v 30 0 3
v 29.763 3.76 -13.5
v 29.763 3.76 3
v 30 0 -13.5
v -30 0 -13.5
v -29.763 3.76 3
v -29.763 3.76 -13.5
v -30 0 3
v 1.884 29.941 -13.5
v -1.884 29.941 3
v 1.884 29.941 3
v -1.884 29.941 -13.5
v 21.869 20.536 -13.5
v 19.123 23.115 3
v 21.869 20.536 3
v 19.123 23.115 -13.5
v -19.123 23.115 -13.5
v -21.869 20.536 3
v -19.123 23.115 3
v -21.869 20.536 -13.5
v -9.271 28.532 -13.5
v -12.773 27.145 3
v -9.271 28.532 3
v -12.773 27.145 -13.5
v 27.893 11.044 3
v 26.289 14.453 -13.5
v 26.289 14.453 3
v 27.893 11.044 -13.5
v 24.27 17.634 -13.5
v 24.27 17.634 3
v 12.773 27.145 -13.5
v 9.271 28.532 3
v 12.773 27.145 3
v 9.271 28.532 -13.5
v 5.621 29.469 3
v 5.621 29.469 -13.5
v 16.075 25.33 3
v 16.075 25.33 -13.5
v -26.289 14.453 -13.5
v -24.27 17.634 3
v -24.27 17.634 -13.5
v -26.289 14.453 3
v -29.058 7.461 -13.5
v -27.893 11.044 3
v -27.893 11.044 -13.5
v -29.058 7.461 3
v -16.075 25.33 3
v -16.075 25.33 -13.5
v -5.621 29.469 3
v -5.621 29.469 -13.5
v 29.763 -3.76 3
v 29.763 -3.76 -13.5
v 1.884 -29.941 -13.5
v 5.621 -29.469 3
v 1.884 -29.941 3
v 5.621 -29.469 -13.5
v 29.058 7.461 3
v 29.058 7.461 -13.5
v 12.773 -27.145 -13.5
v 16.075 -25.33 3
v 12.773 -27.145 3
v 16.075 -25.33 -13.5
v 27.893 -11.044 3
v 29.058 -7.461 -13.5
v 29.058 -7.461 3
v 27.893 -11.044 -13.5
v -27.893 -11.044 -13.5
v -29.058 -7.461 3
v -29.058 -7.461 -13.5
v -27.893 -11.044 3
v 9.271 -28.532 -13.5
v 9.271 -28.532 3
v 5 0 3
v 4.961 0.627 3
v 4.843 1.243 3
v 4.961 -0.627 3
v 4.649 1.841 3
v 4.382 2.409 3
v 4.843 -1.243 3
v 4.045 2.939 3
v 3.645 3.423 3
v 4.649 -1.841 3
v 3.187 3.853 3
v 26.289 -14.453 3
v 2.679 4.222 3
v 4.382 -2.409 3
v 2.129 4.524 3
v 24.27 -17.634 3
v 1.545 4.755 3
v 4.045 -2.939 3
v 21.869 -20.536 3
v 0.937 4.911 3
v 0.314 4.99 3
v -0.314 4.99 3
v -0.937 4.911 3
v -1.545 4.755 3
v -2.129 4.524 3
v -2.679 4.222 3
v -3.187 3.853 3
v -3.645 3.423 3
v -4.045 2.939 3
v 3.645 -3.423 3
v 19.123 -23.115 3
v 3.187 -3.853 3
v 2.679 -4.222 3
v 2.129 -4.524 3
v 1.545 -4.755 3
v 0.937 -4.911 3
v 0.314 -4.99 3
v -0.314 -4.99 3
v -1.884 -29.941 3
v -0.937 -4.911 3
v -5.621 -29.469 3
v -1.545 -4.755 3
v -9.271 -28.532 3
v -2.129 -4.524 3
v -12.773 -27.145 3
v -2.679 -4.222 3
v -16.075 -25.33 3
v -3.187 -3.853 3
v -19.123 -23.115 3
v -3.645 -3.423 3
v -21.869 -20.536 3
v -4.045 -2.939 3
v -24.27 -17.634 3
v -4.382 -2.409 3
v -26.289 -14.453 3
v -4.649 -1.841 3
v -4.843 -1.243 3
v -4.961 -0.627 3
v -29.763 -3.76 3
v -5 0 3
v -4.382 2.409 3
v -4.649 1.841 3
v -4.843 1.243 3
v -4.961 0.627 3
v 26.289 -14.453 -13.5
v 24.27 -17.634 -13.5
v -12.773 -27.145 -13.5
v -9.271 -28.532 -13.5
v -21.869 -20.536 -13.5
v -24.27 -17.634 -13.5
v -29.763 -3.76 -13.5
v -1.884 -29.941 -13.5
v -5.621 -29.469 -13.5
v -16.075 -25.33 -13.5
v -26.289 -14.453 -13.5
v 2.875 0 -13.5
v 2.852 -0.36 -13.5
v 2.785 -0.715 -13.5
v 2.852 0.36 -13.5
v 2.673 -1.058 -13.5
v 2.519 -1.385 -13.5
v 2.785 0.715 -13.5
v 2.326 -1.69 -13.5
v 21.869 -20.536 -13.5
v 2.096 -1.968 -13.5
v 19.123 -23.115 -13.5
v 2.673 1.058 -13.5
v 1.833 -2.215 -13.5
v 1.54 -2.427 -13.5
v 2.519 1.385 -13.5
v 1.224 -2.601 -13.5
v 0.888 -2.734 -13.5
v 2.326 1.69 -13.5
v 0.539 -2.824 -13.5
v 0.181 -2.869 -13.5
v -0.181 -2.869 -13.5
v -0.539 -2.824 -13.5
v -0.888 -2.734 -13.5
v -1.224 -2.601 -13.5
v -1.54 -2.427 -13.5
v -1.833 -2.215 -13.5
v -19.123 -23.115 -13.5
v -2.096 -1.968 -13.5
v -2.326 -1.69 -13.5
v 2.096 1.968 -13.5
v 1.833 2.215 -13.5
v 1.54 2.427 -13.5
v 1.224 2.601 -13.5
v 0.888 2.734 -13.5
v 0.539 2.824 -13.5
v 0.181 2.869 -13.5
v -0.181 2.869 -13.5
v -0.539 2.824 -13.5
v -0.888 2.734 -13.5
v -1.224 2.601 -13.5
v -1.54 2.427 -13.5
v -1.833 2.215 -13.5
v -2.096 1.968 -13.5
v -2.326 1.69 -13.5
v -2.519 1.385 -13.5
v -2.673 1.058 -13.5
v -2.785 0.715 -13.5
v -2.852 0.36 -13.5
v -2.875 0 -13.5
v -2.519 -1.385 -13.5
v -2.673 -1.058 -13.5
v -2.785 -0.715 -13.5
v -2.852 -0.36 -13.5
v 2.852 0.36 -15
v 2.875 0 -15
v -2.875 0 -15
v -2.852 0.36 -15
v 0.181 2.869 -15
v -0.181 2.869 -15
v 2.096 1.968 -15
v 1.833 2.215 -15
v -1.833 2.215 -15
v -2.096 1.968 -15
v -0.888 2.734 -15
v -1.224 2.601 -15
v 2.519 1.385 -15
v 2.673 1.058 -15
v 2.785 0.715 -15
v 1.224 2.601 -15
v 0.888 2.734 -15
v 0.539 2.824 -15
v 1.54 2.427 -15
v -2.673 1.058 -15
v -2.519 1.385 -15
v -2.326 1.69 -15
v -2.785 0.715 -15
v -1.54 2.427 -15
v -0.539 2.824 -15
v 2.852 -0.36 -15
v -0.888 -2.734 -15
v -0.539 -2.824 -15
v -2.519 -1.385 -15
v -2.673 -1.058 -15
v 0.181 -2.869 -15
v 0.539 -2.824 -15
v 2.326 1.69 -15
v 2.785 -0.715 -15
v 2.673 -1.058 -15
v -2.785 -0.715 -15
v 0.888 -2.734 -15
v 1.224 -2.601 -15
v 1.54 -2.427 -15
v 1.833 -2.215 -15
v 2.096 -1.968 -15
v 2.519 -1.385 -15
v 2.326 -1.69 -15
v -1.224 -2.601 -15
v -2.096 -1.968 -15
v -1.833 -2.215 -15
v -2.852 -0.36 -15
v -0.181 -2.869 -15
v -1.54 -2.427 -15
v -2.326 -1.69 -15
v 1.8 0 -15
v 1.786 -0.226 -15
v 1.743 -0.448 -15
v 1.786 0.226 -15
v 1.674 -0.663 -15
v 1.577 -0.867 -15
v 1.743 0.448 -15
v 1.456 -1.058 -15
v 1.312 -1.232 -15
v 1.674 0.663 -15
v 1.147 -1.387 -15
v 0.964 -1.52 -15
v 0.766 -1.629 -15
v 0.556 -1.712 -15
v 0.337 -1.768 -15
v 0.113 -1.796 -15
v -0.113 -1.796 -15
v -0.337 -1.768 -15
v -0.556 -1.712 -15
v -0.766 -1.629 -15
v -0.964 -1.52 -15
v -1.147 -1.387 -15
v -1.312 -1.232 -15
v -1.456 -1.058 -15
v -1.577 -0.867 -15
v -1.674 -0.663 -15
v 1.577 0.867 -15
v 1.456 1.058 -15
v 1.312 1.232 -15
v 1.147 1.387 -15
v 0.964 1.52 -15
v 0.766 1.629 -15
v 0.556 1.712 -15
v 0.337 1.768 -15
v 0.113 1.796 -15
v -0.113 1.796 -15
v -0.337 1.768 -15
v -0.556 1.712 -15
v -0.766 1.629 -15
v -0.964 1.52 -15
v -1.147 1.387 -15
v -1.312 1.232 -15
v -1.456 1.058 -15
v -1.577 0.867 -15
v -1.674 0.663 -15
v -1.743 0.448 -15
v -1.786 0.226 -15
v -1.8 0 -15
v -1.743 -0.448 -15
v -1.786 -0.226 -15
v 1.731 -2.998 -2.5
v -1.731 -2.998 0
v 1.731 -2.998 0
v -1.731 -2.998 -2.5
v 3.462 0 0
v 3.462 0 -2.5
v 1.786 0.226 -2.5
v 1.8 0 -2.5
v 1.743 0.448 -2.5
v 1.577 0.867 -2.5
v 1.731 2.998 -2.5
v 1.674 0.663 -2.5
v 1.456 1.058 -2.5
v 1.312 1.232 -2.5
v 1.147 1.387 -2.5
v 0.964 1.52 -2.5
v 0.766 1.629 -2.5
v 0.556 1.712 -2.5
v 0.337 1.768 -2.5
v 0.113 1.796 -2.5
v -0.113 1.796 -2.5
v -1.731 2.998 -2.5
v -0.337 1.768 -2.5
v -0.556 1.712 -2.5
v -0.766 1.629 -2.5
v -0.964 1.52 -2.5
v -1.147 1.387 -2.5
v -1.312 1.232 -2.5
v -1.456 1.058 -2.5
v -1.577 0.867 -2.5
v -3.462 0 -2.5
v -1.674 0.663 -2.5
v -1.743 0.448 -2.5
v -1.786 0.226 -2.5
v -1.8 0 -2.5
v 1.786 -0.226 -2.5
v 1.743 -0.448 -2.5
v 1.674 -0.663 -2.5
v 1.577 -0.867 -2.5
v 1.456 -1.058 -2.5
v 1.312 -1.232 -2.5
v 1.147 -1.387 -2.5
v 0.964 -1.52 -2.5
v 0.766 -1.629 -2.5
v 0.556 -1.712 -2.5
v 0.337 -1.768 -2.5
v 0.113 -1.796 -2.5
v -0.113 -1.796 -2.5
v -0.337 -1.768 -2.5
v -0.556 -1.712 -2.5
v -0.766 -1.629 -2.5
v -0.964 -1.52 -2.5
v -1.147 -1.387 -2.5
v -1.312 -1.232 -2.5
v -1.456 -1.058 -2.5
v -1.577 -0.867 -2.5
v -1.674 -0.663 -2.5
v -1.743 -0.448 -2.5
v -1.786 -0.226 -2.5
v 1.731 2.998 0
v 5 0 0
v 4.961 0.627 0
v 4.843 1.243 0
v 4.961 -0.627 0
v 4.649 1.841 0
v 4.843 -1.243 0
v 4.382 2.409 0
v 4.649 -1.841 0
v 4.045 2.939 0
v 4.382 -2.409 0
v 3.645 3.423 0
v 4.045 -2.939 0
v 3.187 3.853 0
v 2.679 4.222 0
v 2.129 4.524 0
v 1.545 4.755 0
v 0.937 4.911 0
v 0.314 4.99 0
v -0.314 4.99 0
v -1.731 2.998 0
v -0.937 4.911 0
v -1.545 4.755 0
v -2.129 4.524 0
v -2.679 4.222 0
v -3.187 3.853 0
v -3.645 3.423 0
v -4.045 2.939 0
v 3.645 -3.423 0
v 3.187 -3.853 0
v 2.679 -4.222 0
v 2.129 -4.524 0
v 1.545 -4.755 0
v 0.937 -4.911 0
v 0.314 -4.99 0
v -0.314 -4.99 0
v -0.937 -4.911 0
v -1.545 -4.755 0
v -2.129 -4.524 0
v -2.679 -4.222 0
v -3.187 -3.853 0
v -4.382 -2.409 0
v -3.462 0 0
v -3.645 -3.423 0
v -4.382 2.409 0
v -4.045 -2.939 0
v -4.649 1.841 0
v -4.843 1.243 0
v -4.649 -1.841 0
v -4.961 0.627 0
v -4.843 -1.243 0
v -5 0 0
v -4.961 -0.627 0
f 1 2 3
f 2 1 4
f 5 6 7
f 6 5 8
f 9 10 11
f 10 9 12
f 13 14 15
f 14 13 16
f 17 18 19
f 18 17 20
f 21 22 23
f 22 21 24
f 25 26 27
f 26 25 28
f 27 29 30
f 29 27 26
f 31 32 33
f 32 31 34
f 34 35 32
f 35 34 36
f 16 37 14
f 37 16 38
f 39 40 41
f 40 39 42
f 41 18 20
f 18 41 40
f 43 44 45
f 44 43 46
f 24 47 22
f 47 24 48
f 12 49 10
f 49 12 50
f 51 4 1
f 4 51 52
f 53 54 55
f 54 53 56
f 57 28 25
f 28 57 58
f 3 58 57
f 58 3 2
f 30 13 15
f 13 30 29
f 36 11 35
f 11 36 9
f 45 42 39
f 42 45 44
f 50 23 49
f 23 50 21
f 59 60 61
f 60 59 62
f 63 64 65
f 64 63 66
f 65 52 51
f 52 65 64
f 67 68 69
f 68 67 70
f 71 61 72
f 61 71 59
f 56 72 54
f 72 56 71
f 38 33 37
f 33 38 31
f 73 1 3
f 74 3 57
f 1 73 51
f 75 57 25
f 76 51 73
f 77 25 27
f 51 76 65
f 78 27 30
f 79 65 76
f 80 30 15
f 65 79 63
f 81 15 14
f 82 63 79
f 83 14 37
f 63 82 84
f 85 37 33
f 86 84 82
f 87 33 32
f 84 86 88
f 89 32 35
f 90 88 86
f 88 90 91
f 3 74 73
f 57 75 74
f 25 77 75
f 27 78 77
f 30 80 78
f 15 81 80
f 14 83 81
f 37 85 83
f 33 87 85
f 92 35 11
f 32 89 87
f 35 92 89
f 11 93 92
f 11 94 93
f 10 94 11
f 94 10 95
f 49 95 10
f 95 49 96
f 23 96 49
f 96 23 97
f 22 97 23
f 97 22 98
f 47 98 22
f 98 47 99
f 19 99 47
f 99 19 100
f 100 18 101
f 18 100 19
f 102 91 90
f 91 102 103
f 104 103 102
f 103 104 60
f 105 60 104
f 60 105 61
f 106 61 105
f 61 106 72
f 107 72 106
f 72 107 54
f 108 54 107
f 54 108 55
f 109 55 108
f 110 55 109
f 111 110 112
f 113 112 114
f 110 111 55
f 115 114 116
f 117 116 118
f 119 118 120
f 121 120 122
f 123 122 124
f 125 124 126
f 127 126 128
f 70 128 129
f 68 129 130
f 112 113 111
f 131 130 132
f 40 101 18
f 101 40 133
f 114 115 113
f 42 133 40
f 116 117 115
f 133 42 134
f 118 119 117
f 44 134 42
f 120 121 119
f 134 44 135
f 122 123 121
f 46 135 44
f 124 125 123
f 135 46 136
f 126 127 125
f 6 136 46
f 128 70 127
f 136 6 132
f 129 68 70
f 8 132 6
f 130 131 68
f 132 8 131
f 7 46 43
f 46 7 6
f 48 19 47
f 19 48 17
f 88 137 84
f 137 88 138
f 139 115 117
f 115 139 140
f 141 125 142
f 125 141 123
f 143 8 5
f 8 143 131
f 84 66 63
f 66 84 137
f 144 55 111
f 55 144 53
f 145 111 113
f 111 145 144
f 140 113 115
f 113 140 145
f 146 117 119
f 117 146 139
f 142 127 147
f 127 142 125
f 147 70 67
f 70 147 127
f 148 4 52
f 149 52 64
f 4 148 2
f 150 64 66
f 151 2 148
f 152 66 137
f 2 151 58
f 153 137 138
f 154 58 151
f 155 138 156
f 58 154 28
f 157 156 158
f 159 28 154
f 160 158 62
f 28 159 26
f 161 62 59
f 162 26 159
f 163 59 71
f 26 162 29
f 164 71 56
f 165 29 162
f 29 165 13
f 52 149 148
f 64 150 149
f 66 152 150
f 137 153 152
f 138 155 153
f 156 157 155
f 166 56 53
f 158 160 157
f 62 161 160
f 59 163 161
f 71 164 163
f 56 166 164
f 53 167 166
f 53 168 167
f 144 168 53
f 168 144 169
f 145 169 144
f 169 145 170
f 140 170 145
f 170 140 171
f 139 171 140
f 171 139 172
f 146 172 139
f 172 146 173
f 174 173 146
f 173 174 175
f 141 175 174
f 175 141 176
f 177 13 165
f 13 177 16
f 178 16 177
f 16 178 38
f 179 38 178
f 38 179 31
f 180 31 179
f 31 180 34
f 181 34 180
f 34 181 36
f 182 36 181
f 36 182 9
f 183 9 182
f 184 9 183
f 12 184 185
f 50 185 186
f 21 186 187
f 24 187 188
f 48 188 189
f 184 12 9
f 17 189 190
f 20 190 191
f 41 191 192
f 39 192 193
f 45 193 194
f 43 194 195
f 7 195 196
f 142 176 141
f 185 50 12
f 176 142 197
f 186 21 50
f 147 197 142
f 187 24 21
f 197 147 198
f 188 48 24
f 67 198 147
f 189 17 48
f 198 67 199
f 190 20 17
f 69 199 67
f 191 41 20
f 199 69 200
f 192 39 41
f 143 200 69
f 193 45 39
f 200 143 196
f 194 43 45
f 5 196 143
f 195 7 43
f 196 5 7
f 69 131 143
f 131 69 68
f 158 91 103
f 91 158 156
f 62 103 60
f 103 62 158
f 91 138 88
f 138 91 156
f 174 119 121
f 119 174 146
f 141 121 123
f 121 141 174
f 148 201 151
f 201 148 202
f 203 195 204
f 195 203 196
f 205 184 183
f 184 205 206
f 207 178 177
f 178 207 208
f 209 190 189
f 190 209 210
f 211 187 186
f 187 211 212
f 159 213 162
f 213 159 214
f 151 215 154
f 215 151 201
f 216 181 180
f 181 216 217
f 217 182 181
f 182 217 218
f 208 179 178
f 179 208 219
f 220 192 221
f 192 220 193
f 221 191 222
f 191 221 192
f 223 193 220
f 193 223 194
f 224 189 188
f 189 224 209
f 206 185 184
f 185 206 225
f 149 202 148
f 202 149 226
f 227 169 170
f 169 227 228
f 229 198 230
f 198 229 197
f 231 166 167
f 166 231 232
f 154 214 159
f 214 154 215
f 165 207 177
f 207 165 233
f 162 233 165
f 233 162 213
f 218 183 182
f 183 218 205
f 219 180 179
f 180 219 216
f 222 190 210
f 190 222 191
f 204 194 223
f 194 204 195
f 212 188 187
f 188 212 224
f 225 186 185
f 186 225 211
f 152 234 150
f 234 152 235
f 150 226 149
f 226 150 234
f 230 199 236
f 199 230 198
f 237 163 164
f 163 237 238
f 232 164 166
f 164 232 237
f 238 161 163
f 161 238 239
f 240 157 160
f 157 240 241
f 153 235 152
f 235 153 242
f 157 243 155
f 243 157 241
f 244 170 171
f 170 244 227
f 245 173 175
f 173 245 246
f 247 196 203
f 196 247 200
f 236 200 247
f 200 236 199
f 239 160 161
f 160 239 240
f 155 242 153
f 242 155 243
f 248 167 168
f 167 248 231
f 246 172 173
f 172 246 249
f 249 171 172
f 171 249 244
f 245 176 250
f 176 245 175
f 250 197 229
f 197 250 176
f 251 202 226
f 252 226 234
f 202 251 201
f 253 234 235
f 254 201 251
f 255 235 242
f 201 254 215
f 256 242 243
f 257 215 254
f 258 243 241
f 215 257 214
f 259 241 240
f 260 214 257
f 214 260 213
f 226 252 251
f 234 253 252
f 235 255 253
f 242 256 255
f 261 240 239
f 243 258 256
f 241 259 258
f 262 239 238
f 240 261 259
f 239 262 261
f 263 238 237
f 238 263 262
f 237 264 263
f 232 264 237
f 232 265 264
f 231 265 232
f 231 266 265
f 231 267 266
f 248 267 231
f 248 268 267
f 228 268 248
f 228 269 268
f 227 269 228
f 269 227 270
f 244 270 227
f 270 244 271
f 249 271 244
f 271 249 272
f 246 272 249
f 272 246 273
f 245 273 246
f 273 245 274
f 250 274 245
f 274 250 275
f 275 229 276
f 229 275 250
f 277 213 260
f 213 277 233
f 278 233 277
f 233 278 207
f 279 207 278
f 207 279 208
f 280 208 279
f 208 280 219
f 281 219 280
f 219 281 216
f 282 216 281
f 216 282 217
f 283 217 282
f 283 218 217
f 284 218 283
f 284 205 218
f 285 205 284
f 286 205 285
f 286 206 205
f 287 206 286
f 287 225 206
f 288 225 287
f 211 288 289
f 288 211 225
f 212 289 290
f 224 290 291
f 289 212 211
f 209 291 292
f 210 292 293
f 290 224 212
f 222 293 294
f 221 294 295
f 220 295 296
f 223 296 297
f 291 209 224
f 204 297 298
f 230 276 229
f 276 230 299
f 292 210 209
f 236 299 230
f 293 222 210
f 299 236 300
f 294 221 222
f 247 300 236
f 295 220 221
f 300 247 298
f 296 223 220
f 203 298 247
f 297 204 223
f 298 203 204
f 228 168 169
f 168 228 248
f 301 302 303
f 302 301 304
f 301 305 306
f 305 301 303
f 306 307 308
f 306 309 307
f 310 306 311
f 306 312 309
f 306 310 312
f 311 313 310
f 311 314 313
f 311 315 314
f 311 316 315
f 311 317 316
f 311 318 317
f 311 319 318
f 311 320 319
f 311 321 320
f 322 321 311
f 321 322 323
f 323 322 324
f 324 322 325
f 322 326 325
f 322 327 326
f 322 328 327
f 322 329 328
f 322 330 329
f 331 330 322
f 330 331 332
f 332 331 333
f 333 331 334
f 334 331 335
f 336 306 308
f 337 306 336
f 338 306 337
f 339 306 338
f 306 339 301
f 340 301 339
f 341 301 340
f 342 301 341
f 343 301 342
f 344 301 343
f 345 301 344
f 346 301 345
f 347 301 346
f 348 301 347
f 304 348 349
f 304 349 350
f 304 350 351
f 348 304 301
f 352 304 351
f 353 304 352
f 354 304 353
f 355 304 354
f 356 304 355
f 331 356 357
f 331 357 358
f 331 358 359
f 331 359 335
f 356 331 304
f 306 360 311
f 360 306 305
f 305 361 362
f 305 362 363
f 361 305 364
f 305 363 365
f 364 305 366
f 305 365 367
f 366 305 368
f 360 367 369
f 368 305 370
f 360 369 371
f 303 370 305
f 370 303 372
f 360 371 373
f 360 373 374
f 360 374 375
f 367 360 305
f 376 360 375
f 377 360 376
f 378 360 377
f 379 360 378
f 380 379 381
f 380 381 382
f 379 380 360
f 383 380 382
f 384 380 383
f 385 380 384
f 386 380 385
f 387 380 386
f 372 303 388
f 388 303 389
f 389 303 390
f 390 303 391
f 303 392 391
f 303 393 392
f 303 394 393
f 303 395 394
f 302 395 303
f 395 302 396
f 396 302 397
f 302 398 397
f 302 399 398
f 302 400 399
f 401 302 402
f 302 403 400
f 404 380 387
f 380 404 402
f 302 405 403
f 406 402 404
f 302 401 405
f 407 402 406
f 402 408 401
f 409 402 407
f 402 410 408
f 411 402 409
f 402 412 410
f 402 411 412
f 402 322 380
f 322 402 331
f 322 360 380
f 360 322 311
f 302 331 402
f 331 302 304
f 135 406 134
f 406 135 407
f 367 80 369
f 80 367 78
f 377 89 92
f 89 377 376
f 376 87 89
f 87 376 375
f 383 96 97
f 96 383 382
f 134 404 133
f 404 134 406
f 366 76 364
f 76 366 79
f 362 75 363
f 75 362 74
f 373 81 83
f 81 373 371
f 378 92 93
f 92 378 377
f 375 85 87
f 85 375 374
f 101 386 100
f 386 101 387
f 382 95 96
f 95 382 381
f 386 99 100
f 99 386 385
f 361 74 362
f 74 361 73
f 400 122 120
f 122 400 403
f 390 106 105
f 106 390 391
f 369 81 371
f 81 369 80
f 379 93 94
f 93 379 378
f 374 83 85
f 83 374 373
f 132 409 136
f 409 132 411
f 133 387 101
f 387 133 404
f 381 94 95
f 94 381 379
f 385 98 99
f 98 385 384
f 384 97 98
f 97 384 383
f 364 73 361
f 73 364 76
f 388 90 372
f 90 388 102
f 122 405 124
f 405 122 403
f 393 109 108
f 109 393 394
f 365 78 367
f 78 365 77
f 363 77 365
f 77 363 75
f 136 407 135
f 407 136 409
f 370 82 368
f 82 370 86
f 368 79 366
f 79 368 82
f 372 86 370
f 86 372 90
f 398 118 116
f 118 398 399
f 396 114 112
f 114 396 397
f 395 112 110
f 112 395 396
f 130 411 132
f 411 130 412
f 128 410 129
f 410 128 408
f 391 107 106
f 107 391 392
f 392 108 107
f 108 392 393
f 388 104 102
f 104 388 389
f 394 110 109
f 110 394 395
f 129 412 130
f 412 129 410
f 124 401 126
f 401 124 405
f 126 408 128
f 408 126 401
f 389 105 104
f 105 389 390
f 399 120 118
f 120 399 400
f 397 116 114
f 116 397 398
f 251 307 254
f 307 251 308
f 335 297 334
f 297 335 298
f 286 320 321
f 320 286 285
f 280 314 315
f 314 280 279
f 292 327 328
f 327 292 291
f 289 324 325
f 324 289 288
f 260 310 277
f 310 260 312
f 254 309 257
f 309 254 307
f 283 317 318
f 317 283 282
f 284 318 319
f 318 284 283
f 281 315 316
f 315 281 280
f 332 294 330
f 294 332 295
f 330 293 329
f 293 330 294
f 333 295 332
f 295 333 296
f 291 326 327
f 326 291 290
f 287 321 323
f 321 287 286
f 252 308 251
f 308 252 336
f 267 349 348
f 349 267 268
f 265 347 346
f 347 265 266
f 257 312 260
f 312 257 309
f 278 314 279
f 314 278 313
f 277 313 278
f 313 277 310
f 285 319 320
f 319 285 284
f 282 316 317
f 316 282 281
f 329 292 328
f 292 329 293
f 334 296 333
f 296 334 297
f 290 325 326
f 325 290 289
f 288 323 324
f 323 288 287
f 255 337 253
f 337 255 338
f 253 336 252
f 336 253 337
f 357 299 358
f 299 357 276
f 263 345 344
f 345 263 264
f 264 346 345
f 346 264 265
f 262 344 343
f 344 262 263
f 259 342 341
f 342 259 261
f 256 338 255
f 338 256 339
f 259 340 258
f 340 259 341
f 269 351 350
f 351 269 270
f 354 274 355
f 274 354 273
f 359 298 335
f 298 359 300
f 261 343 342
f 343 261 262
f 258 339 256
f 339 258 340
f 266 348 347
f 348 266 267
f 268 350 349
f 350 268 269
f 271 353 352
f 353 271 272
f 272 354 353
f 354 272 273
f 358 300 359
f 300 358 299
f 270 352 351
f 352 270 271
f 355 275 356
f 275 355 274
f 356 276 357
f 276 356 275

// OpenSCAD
$fn = 50;


difference() {
	union() {
		translate(v = [0, 0, -13.5000000000]) {
			cylinder(h = 16.5000000000, r = 30.0000000000);
		}
		#translate(v = [0, 0, -15.0000000000]) {
			cylinder(h = 15, r = 2.8750000000);
		}
	}
	union() {
		translate(v = [0, 0, 0]) {
			rotate(a = [0, 0, 0]) {
				difference() {
					union() {
						translate(v = [0, 0, -2.5000000000]) {
							linear_extrude(height = 2.5000000000) {
								polygon(points = [[3.4620000000, 0.0000000000], [1.7310000000, 2.9981799479], [-1.7310000000, 2.9981799479], [-3.4620000000, 0.0000000000], [-1.7310000000, -2.9981799479], [1.7310000000, -2.9981799479]]);
							}
						}
					}
					union();
				}
			}
		}
		#cylinder(h = 3, r = 5.0000000000);
		#translate(v = [0, 0, -100.0000000000]) {
			cylinder(h = 200, r = 1.8000000000);
		}
	}
}
